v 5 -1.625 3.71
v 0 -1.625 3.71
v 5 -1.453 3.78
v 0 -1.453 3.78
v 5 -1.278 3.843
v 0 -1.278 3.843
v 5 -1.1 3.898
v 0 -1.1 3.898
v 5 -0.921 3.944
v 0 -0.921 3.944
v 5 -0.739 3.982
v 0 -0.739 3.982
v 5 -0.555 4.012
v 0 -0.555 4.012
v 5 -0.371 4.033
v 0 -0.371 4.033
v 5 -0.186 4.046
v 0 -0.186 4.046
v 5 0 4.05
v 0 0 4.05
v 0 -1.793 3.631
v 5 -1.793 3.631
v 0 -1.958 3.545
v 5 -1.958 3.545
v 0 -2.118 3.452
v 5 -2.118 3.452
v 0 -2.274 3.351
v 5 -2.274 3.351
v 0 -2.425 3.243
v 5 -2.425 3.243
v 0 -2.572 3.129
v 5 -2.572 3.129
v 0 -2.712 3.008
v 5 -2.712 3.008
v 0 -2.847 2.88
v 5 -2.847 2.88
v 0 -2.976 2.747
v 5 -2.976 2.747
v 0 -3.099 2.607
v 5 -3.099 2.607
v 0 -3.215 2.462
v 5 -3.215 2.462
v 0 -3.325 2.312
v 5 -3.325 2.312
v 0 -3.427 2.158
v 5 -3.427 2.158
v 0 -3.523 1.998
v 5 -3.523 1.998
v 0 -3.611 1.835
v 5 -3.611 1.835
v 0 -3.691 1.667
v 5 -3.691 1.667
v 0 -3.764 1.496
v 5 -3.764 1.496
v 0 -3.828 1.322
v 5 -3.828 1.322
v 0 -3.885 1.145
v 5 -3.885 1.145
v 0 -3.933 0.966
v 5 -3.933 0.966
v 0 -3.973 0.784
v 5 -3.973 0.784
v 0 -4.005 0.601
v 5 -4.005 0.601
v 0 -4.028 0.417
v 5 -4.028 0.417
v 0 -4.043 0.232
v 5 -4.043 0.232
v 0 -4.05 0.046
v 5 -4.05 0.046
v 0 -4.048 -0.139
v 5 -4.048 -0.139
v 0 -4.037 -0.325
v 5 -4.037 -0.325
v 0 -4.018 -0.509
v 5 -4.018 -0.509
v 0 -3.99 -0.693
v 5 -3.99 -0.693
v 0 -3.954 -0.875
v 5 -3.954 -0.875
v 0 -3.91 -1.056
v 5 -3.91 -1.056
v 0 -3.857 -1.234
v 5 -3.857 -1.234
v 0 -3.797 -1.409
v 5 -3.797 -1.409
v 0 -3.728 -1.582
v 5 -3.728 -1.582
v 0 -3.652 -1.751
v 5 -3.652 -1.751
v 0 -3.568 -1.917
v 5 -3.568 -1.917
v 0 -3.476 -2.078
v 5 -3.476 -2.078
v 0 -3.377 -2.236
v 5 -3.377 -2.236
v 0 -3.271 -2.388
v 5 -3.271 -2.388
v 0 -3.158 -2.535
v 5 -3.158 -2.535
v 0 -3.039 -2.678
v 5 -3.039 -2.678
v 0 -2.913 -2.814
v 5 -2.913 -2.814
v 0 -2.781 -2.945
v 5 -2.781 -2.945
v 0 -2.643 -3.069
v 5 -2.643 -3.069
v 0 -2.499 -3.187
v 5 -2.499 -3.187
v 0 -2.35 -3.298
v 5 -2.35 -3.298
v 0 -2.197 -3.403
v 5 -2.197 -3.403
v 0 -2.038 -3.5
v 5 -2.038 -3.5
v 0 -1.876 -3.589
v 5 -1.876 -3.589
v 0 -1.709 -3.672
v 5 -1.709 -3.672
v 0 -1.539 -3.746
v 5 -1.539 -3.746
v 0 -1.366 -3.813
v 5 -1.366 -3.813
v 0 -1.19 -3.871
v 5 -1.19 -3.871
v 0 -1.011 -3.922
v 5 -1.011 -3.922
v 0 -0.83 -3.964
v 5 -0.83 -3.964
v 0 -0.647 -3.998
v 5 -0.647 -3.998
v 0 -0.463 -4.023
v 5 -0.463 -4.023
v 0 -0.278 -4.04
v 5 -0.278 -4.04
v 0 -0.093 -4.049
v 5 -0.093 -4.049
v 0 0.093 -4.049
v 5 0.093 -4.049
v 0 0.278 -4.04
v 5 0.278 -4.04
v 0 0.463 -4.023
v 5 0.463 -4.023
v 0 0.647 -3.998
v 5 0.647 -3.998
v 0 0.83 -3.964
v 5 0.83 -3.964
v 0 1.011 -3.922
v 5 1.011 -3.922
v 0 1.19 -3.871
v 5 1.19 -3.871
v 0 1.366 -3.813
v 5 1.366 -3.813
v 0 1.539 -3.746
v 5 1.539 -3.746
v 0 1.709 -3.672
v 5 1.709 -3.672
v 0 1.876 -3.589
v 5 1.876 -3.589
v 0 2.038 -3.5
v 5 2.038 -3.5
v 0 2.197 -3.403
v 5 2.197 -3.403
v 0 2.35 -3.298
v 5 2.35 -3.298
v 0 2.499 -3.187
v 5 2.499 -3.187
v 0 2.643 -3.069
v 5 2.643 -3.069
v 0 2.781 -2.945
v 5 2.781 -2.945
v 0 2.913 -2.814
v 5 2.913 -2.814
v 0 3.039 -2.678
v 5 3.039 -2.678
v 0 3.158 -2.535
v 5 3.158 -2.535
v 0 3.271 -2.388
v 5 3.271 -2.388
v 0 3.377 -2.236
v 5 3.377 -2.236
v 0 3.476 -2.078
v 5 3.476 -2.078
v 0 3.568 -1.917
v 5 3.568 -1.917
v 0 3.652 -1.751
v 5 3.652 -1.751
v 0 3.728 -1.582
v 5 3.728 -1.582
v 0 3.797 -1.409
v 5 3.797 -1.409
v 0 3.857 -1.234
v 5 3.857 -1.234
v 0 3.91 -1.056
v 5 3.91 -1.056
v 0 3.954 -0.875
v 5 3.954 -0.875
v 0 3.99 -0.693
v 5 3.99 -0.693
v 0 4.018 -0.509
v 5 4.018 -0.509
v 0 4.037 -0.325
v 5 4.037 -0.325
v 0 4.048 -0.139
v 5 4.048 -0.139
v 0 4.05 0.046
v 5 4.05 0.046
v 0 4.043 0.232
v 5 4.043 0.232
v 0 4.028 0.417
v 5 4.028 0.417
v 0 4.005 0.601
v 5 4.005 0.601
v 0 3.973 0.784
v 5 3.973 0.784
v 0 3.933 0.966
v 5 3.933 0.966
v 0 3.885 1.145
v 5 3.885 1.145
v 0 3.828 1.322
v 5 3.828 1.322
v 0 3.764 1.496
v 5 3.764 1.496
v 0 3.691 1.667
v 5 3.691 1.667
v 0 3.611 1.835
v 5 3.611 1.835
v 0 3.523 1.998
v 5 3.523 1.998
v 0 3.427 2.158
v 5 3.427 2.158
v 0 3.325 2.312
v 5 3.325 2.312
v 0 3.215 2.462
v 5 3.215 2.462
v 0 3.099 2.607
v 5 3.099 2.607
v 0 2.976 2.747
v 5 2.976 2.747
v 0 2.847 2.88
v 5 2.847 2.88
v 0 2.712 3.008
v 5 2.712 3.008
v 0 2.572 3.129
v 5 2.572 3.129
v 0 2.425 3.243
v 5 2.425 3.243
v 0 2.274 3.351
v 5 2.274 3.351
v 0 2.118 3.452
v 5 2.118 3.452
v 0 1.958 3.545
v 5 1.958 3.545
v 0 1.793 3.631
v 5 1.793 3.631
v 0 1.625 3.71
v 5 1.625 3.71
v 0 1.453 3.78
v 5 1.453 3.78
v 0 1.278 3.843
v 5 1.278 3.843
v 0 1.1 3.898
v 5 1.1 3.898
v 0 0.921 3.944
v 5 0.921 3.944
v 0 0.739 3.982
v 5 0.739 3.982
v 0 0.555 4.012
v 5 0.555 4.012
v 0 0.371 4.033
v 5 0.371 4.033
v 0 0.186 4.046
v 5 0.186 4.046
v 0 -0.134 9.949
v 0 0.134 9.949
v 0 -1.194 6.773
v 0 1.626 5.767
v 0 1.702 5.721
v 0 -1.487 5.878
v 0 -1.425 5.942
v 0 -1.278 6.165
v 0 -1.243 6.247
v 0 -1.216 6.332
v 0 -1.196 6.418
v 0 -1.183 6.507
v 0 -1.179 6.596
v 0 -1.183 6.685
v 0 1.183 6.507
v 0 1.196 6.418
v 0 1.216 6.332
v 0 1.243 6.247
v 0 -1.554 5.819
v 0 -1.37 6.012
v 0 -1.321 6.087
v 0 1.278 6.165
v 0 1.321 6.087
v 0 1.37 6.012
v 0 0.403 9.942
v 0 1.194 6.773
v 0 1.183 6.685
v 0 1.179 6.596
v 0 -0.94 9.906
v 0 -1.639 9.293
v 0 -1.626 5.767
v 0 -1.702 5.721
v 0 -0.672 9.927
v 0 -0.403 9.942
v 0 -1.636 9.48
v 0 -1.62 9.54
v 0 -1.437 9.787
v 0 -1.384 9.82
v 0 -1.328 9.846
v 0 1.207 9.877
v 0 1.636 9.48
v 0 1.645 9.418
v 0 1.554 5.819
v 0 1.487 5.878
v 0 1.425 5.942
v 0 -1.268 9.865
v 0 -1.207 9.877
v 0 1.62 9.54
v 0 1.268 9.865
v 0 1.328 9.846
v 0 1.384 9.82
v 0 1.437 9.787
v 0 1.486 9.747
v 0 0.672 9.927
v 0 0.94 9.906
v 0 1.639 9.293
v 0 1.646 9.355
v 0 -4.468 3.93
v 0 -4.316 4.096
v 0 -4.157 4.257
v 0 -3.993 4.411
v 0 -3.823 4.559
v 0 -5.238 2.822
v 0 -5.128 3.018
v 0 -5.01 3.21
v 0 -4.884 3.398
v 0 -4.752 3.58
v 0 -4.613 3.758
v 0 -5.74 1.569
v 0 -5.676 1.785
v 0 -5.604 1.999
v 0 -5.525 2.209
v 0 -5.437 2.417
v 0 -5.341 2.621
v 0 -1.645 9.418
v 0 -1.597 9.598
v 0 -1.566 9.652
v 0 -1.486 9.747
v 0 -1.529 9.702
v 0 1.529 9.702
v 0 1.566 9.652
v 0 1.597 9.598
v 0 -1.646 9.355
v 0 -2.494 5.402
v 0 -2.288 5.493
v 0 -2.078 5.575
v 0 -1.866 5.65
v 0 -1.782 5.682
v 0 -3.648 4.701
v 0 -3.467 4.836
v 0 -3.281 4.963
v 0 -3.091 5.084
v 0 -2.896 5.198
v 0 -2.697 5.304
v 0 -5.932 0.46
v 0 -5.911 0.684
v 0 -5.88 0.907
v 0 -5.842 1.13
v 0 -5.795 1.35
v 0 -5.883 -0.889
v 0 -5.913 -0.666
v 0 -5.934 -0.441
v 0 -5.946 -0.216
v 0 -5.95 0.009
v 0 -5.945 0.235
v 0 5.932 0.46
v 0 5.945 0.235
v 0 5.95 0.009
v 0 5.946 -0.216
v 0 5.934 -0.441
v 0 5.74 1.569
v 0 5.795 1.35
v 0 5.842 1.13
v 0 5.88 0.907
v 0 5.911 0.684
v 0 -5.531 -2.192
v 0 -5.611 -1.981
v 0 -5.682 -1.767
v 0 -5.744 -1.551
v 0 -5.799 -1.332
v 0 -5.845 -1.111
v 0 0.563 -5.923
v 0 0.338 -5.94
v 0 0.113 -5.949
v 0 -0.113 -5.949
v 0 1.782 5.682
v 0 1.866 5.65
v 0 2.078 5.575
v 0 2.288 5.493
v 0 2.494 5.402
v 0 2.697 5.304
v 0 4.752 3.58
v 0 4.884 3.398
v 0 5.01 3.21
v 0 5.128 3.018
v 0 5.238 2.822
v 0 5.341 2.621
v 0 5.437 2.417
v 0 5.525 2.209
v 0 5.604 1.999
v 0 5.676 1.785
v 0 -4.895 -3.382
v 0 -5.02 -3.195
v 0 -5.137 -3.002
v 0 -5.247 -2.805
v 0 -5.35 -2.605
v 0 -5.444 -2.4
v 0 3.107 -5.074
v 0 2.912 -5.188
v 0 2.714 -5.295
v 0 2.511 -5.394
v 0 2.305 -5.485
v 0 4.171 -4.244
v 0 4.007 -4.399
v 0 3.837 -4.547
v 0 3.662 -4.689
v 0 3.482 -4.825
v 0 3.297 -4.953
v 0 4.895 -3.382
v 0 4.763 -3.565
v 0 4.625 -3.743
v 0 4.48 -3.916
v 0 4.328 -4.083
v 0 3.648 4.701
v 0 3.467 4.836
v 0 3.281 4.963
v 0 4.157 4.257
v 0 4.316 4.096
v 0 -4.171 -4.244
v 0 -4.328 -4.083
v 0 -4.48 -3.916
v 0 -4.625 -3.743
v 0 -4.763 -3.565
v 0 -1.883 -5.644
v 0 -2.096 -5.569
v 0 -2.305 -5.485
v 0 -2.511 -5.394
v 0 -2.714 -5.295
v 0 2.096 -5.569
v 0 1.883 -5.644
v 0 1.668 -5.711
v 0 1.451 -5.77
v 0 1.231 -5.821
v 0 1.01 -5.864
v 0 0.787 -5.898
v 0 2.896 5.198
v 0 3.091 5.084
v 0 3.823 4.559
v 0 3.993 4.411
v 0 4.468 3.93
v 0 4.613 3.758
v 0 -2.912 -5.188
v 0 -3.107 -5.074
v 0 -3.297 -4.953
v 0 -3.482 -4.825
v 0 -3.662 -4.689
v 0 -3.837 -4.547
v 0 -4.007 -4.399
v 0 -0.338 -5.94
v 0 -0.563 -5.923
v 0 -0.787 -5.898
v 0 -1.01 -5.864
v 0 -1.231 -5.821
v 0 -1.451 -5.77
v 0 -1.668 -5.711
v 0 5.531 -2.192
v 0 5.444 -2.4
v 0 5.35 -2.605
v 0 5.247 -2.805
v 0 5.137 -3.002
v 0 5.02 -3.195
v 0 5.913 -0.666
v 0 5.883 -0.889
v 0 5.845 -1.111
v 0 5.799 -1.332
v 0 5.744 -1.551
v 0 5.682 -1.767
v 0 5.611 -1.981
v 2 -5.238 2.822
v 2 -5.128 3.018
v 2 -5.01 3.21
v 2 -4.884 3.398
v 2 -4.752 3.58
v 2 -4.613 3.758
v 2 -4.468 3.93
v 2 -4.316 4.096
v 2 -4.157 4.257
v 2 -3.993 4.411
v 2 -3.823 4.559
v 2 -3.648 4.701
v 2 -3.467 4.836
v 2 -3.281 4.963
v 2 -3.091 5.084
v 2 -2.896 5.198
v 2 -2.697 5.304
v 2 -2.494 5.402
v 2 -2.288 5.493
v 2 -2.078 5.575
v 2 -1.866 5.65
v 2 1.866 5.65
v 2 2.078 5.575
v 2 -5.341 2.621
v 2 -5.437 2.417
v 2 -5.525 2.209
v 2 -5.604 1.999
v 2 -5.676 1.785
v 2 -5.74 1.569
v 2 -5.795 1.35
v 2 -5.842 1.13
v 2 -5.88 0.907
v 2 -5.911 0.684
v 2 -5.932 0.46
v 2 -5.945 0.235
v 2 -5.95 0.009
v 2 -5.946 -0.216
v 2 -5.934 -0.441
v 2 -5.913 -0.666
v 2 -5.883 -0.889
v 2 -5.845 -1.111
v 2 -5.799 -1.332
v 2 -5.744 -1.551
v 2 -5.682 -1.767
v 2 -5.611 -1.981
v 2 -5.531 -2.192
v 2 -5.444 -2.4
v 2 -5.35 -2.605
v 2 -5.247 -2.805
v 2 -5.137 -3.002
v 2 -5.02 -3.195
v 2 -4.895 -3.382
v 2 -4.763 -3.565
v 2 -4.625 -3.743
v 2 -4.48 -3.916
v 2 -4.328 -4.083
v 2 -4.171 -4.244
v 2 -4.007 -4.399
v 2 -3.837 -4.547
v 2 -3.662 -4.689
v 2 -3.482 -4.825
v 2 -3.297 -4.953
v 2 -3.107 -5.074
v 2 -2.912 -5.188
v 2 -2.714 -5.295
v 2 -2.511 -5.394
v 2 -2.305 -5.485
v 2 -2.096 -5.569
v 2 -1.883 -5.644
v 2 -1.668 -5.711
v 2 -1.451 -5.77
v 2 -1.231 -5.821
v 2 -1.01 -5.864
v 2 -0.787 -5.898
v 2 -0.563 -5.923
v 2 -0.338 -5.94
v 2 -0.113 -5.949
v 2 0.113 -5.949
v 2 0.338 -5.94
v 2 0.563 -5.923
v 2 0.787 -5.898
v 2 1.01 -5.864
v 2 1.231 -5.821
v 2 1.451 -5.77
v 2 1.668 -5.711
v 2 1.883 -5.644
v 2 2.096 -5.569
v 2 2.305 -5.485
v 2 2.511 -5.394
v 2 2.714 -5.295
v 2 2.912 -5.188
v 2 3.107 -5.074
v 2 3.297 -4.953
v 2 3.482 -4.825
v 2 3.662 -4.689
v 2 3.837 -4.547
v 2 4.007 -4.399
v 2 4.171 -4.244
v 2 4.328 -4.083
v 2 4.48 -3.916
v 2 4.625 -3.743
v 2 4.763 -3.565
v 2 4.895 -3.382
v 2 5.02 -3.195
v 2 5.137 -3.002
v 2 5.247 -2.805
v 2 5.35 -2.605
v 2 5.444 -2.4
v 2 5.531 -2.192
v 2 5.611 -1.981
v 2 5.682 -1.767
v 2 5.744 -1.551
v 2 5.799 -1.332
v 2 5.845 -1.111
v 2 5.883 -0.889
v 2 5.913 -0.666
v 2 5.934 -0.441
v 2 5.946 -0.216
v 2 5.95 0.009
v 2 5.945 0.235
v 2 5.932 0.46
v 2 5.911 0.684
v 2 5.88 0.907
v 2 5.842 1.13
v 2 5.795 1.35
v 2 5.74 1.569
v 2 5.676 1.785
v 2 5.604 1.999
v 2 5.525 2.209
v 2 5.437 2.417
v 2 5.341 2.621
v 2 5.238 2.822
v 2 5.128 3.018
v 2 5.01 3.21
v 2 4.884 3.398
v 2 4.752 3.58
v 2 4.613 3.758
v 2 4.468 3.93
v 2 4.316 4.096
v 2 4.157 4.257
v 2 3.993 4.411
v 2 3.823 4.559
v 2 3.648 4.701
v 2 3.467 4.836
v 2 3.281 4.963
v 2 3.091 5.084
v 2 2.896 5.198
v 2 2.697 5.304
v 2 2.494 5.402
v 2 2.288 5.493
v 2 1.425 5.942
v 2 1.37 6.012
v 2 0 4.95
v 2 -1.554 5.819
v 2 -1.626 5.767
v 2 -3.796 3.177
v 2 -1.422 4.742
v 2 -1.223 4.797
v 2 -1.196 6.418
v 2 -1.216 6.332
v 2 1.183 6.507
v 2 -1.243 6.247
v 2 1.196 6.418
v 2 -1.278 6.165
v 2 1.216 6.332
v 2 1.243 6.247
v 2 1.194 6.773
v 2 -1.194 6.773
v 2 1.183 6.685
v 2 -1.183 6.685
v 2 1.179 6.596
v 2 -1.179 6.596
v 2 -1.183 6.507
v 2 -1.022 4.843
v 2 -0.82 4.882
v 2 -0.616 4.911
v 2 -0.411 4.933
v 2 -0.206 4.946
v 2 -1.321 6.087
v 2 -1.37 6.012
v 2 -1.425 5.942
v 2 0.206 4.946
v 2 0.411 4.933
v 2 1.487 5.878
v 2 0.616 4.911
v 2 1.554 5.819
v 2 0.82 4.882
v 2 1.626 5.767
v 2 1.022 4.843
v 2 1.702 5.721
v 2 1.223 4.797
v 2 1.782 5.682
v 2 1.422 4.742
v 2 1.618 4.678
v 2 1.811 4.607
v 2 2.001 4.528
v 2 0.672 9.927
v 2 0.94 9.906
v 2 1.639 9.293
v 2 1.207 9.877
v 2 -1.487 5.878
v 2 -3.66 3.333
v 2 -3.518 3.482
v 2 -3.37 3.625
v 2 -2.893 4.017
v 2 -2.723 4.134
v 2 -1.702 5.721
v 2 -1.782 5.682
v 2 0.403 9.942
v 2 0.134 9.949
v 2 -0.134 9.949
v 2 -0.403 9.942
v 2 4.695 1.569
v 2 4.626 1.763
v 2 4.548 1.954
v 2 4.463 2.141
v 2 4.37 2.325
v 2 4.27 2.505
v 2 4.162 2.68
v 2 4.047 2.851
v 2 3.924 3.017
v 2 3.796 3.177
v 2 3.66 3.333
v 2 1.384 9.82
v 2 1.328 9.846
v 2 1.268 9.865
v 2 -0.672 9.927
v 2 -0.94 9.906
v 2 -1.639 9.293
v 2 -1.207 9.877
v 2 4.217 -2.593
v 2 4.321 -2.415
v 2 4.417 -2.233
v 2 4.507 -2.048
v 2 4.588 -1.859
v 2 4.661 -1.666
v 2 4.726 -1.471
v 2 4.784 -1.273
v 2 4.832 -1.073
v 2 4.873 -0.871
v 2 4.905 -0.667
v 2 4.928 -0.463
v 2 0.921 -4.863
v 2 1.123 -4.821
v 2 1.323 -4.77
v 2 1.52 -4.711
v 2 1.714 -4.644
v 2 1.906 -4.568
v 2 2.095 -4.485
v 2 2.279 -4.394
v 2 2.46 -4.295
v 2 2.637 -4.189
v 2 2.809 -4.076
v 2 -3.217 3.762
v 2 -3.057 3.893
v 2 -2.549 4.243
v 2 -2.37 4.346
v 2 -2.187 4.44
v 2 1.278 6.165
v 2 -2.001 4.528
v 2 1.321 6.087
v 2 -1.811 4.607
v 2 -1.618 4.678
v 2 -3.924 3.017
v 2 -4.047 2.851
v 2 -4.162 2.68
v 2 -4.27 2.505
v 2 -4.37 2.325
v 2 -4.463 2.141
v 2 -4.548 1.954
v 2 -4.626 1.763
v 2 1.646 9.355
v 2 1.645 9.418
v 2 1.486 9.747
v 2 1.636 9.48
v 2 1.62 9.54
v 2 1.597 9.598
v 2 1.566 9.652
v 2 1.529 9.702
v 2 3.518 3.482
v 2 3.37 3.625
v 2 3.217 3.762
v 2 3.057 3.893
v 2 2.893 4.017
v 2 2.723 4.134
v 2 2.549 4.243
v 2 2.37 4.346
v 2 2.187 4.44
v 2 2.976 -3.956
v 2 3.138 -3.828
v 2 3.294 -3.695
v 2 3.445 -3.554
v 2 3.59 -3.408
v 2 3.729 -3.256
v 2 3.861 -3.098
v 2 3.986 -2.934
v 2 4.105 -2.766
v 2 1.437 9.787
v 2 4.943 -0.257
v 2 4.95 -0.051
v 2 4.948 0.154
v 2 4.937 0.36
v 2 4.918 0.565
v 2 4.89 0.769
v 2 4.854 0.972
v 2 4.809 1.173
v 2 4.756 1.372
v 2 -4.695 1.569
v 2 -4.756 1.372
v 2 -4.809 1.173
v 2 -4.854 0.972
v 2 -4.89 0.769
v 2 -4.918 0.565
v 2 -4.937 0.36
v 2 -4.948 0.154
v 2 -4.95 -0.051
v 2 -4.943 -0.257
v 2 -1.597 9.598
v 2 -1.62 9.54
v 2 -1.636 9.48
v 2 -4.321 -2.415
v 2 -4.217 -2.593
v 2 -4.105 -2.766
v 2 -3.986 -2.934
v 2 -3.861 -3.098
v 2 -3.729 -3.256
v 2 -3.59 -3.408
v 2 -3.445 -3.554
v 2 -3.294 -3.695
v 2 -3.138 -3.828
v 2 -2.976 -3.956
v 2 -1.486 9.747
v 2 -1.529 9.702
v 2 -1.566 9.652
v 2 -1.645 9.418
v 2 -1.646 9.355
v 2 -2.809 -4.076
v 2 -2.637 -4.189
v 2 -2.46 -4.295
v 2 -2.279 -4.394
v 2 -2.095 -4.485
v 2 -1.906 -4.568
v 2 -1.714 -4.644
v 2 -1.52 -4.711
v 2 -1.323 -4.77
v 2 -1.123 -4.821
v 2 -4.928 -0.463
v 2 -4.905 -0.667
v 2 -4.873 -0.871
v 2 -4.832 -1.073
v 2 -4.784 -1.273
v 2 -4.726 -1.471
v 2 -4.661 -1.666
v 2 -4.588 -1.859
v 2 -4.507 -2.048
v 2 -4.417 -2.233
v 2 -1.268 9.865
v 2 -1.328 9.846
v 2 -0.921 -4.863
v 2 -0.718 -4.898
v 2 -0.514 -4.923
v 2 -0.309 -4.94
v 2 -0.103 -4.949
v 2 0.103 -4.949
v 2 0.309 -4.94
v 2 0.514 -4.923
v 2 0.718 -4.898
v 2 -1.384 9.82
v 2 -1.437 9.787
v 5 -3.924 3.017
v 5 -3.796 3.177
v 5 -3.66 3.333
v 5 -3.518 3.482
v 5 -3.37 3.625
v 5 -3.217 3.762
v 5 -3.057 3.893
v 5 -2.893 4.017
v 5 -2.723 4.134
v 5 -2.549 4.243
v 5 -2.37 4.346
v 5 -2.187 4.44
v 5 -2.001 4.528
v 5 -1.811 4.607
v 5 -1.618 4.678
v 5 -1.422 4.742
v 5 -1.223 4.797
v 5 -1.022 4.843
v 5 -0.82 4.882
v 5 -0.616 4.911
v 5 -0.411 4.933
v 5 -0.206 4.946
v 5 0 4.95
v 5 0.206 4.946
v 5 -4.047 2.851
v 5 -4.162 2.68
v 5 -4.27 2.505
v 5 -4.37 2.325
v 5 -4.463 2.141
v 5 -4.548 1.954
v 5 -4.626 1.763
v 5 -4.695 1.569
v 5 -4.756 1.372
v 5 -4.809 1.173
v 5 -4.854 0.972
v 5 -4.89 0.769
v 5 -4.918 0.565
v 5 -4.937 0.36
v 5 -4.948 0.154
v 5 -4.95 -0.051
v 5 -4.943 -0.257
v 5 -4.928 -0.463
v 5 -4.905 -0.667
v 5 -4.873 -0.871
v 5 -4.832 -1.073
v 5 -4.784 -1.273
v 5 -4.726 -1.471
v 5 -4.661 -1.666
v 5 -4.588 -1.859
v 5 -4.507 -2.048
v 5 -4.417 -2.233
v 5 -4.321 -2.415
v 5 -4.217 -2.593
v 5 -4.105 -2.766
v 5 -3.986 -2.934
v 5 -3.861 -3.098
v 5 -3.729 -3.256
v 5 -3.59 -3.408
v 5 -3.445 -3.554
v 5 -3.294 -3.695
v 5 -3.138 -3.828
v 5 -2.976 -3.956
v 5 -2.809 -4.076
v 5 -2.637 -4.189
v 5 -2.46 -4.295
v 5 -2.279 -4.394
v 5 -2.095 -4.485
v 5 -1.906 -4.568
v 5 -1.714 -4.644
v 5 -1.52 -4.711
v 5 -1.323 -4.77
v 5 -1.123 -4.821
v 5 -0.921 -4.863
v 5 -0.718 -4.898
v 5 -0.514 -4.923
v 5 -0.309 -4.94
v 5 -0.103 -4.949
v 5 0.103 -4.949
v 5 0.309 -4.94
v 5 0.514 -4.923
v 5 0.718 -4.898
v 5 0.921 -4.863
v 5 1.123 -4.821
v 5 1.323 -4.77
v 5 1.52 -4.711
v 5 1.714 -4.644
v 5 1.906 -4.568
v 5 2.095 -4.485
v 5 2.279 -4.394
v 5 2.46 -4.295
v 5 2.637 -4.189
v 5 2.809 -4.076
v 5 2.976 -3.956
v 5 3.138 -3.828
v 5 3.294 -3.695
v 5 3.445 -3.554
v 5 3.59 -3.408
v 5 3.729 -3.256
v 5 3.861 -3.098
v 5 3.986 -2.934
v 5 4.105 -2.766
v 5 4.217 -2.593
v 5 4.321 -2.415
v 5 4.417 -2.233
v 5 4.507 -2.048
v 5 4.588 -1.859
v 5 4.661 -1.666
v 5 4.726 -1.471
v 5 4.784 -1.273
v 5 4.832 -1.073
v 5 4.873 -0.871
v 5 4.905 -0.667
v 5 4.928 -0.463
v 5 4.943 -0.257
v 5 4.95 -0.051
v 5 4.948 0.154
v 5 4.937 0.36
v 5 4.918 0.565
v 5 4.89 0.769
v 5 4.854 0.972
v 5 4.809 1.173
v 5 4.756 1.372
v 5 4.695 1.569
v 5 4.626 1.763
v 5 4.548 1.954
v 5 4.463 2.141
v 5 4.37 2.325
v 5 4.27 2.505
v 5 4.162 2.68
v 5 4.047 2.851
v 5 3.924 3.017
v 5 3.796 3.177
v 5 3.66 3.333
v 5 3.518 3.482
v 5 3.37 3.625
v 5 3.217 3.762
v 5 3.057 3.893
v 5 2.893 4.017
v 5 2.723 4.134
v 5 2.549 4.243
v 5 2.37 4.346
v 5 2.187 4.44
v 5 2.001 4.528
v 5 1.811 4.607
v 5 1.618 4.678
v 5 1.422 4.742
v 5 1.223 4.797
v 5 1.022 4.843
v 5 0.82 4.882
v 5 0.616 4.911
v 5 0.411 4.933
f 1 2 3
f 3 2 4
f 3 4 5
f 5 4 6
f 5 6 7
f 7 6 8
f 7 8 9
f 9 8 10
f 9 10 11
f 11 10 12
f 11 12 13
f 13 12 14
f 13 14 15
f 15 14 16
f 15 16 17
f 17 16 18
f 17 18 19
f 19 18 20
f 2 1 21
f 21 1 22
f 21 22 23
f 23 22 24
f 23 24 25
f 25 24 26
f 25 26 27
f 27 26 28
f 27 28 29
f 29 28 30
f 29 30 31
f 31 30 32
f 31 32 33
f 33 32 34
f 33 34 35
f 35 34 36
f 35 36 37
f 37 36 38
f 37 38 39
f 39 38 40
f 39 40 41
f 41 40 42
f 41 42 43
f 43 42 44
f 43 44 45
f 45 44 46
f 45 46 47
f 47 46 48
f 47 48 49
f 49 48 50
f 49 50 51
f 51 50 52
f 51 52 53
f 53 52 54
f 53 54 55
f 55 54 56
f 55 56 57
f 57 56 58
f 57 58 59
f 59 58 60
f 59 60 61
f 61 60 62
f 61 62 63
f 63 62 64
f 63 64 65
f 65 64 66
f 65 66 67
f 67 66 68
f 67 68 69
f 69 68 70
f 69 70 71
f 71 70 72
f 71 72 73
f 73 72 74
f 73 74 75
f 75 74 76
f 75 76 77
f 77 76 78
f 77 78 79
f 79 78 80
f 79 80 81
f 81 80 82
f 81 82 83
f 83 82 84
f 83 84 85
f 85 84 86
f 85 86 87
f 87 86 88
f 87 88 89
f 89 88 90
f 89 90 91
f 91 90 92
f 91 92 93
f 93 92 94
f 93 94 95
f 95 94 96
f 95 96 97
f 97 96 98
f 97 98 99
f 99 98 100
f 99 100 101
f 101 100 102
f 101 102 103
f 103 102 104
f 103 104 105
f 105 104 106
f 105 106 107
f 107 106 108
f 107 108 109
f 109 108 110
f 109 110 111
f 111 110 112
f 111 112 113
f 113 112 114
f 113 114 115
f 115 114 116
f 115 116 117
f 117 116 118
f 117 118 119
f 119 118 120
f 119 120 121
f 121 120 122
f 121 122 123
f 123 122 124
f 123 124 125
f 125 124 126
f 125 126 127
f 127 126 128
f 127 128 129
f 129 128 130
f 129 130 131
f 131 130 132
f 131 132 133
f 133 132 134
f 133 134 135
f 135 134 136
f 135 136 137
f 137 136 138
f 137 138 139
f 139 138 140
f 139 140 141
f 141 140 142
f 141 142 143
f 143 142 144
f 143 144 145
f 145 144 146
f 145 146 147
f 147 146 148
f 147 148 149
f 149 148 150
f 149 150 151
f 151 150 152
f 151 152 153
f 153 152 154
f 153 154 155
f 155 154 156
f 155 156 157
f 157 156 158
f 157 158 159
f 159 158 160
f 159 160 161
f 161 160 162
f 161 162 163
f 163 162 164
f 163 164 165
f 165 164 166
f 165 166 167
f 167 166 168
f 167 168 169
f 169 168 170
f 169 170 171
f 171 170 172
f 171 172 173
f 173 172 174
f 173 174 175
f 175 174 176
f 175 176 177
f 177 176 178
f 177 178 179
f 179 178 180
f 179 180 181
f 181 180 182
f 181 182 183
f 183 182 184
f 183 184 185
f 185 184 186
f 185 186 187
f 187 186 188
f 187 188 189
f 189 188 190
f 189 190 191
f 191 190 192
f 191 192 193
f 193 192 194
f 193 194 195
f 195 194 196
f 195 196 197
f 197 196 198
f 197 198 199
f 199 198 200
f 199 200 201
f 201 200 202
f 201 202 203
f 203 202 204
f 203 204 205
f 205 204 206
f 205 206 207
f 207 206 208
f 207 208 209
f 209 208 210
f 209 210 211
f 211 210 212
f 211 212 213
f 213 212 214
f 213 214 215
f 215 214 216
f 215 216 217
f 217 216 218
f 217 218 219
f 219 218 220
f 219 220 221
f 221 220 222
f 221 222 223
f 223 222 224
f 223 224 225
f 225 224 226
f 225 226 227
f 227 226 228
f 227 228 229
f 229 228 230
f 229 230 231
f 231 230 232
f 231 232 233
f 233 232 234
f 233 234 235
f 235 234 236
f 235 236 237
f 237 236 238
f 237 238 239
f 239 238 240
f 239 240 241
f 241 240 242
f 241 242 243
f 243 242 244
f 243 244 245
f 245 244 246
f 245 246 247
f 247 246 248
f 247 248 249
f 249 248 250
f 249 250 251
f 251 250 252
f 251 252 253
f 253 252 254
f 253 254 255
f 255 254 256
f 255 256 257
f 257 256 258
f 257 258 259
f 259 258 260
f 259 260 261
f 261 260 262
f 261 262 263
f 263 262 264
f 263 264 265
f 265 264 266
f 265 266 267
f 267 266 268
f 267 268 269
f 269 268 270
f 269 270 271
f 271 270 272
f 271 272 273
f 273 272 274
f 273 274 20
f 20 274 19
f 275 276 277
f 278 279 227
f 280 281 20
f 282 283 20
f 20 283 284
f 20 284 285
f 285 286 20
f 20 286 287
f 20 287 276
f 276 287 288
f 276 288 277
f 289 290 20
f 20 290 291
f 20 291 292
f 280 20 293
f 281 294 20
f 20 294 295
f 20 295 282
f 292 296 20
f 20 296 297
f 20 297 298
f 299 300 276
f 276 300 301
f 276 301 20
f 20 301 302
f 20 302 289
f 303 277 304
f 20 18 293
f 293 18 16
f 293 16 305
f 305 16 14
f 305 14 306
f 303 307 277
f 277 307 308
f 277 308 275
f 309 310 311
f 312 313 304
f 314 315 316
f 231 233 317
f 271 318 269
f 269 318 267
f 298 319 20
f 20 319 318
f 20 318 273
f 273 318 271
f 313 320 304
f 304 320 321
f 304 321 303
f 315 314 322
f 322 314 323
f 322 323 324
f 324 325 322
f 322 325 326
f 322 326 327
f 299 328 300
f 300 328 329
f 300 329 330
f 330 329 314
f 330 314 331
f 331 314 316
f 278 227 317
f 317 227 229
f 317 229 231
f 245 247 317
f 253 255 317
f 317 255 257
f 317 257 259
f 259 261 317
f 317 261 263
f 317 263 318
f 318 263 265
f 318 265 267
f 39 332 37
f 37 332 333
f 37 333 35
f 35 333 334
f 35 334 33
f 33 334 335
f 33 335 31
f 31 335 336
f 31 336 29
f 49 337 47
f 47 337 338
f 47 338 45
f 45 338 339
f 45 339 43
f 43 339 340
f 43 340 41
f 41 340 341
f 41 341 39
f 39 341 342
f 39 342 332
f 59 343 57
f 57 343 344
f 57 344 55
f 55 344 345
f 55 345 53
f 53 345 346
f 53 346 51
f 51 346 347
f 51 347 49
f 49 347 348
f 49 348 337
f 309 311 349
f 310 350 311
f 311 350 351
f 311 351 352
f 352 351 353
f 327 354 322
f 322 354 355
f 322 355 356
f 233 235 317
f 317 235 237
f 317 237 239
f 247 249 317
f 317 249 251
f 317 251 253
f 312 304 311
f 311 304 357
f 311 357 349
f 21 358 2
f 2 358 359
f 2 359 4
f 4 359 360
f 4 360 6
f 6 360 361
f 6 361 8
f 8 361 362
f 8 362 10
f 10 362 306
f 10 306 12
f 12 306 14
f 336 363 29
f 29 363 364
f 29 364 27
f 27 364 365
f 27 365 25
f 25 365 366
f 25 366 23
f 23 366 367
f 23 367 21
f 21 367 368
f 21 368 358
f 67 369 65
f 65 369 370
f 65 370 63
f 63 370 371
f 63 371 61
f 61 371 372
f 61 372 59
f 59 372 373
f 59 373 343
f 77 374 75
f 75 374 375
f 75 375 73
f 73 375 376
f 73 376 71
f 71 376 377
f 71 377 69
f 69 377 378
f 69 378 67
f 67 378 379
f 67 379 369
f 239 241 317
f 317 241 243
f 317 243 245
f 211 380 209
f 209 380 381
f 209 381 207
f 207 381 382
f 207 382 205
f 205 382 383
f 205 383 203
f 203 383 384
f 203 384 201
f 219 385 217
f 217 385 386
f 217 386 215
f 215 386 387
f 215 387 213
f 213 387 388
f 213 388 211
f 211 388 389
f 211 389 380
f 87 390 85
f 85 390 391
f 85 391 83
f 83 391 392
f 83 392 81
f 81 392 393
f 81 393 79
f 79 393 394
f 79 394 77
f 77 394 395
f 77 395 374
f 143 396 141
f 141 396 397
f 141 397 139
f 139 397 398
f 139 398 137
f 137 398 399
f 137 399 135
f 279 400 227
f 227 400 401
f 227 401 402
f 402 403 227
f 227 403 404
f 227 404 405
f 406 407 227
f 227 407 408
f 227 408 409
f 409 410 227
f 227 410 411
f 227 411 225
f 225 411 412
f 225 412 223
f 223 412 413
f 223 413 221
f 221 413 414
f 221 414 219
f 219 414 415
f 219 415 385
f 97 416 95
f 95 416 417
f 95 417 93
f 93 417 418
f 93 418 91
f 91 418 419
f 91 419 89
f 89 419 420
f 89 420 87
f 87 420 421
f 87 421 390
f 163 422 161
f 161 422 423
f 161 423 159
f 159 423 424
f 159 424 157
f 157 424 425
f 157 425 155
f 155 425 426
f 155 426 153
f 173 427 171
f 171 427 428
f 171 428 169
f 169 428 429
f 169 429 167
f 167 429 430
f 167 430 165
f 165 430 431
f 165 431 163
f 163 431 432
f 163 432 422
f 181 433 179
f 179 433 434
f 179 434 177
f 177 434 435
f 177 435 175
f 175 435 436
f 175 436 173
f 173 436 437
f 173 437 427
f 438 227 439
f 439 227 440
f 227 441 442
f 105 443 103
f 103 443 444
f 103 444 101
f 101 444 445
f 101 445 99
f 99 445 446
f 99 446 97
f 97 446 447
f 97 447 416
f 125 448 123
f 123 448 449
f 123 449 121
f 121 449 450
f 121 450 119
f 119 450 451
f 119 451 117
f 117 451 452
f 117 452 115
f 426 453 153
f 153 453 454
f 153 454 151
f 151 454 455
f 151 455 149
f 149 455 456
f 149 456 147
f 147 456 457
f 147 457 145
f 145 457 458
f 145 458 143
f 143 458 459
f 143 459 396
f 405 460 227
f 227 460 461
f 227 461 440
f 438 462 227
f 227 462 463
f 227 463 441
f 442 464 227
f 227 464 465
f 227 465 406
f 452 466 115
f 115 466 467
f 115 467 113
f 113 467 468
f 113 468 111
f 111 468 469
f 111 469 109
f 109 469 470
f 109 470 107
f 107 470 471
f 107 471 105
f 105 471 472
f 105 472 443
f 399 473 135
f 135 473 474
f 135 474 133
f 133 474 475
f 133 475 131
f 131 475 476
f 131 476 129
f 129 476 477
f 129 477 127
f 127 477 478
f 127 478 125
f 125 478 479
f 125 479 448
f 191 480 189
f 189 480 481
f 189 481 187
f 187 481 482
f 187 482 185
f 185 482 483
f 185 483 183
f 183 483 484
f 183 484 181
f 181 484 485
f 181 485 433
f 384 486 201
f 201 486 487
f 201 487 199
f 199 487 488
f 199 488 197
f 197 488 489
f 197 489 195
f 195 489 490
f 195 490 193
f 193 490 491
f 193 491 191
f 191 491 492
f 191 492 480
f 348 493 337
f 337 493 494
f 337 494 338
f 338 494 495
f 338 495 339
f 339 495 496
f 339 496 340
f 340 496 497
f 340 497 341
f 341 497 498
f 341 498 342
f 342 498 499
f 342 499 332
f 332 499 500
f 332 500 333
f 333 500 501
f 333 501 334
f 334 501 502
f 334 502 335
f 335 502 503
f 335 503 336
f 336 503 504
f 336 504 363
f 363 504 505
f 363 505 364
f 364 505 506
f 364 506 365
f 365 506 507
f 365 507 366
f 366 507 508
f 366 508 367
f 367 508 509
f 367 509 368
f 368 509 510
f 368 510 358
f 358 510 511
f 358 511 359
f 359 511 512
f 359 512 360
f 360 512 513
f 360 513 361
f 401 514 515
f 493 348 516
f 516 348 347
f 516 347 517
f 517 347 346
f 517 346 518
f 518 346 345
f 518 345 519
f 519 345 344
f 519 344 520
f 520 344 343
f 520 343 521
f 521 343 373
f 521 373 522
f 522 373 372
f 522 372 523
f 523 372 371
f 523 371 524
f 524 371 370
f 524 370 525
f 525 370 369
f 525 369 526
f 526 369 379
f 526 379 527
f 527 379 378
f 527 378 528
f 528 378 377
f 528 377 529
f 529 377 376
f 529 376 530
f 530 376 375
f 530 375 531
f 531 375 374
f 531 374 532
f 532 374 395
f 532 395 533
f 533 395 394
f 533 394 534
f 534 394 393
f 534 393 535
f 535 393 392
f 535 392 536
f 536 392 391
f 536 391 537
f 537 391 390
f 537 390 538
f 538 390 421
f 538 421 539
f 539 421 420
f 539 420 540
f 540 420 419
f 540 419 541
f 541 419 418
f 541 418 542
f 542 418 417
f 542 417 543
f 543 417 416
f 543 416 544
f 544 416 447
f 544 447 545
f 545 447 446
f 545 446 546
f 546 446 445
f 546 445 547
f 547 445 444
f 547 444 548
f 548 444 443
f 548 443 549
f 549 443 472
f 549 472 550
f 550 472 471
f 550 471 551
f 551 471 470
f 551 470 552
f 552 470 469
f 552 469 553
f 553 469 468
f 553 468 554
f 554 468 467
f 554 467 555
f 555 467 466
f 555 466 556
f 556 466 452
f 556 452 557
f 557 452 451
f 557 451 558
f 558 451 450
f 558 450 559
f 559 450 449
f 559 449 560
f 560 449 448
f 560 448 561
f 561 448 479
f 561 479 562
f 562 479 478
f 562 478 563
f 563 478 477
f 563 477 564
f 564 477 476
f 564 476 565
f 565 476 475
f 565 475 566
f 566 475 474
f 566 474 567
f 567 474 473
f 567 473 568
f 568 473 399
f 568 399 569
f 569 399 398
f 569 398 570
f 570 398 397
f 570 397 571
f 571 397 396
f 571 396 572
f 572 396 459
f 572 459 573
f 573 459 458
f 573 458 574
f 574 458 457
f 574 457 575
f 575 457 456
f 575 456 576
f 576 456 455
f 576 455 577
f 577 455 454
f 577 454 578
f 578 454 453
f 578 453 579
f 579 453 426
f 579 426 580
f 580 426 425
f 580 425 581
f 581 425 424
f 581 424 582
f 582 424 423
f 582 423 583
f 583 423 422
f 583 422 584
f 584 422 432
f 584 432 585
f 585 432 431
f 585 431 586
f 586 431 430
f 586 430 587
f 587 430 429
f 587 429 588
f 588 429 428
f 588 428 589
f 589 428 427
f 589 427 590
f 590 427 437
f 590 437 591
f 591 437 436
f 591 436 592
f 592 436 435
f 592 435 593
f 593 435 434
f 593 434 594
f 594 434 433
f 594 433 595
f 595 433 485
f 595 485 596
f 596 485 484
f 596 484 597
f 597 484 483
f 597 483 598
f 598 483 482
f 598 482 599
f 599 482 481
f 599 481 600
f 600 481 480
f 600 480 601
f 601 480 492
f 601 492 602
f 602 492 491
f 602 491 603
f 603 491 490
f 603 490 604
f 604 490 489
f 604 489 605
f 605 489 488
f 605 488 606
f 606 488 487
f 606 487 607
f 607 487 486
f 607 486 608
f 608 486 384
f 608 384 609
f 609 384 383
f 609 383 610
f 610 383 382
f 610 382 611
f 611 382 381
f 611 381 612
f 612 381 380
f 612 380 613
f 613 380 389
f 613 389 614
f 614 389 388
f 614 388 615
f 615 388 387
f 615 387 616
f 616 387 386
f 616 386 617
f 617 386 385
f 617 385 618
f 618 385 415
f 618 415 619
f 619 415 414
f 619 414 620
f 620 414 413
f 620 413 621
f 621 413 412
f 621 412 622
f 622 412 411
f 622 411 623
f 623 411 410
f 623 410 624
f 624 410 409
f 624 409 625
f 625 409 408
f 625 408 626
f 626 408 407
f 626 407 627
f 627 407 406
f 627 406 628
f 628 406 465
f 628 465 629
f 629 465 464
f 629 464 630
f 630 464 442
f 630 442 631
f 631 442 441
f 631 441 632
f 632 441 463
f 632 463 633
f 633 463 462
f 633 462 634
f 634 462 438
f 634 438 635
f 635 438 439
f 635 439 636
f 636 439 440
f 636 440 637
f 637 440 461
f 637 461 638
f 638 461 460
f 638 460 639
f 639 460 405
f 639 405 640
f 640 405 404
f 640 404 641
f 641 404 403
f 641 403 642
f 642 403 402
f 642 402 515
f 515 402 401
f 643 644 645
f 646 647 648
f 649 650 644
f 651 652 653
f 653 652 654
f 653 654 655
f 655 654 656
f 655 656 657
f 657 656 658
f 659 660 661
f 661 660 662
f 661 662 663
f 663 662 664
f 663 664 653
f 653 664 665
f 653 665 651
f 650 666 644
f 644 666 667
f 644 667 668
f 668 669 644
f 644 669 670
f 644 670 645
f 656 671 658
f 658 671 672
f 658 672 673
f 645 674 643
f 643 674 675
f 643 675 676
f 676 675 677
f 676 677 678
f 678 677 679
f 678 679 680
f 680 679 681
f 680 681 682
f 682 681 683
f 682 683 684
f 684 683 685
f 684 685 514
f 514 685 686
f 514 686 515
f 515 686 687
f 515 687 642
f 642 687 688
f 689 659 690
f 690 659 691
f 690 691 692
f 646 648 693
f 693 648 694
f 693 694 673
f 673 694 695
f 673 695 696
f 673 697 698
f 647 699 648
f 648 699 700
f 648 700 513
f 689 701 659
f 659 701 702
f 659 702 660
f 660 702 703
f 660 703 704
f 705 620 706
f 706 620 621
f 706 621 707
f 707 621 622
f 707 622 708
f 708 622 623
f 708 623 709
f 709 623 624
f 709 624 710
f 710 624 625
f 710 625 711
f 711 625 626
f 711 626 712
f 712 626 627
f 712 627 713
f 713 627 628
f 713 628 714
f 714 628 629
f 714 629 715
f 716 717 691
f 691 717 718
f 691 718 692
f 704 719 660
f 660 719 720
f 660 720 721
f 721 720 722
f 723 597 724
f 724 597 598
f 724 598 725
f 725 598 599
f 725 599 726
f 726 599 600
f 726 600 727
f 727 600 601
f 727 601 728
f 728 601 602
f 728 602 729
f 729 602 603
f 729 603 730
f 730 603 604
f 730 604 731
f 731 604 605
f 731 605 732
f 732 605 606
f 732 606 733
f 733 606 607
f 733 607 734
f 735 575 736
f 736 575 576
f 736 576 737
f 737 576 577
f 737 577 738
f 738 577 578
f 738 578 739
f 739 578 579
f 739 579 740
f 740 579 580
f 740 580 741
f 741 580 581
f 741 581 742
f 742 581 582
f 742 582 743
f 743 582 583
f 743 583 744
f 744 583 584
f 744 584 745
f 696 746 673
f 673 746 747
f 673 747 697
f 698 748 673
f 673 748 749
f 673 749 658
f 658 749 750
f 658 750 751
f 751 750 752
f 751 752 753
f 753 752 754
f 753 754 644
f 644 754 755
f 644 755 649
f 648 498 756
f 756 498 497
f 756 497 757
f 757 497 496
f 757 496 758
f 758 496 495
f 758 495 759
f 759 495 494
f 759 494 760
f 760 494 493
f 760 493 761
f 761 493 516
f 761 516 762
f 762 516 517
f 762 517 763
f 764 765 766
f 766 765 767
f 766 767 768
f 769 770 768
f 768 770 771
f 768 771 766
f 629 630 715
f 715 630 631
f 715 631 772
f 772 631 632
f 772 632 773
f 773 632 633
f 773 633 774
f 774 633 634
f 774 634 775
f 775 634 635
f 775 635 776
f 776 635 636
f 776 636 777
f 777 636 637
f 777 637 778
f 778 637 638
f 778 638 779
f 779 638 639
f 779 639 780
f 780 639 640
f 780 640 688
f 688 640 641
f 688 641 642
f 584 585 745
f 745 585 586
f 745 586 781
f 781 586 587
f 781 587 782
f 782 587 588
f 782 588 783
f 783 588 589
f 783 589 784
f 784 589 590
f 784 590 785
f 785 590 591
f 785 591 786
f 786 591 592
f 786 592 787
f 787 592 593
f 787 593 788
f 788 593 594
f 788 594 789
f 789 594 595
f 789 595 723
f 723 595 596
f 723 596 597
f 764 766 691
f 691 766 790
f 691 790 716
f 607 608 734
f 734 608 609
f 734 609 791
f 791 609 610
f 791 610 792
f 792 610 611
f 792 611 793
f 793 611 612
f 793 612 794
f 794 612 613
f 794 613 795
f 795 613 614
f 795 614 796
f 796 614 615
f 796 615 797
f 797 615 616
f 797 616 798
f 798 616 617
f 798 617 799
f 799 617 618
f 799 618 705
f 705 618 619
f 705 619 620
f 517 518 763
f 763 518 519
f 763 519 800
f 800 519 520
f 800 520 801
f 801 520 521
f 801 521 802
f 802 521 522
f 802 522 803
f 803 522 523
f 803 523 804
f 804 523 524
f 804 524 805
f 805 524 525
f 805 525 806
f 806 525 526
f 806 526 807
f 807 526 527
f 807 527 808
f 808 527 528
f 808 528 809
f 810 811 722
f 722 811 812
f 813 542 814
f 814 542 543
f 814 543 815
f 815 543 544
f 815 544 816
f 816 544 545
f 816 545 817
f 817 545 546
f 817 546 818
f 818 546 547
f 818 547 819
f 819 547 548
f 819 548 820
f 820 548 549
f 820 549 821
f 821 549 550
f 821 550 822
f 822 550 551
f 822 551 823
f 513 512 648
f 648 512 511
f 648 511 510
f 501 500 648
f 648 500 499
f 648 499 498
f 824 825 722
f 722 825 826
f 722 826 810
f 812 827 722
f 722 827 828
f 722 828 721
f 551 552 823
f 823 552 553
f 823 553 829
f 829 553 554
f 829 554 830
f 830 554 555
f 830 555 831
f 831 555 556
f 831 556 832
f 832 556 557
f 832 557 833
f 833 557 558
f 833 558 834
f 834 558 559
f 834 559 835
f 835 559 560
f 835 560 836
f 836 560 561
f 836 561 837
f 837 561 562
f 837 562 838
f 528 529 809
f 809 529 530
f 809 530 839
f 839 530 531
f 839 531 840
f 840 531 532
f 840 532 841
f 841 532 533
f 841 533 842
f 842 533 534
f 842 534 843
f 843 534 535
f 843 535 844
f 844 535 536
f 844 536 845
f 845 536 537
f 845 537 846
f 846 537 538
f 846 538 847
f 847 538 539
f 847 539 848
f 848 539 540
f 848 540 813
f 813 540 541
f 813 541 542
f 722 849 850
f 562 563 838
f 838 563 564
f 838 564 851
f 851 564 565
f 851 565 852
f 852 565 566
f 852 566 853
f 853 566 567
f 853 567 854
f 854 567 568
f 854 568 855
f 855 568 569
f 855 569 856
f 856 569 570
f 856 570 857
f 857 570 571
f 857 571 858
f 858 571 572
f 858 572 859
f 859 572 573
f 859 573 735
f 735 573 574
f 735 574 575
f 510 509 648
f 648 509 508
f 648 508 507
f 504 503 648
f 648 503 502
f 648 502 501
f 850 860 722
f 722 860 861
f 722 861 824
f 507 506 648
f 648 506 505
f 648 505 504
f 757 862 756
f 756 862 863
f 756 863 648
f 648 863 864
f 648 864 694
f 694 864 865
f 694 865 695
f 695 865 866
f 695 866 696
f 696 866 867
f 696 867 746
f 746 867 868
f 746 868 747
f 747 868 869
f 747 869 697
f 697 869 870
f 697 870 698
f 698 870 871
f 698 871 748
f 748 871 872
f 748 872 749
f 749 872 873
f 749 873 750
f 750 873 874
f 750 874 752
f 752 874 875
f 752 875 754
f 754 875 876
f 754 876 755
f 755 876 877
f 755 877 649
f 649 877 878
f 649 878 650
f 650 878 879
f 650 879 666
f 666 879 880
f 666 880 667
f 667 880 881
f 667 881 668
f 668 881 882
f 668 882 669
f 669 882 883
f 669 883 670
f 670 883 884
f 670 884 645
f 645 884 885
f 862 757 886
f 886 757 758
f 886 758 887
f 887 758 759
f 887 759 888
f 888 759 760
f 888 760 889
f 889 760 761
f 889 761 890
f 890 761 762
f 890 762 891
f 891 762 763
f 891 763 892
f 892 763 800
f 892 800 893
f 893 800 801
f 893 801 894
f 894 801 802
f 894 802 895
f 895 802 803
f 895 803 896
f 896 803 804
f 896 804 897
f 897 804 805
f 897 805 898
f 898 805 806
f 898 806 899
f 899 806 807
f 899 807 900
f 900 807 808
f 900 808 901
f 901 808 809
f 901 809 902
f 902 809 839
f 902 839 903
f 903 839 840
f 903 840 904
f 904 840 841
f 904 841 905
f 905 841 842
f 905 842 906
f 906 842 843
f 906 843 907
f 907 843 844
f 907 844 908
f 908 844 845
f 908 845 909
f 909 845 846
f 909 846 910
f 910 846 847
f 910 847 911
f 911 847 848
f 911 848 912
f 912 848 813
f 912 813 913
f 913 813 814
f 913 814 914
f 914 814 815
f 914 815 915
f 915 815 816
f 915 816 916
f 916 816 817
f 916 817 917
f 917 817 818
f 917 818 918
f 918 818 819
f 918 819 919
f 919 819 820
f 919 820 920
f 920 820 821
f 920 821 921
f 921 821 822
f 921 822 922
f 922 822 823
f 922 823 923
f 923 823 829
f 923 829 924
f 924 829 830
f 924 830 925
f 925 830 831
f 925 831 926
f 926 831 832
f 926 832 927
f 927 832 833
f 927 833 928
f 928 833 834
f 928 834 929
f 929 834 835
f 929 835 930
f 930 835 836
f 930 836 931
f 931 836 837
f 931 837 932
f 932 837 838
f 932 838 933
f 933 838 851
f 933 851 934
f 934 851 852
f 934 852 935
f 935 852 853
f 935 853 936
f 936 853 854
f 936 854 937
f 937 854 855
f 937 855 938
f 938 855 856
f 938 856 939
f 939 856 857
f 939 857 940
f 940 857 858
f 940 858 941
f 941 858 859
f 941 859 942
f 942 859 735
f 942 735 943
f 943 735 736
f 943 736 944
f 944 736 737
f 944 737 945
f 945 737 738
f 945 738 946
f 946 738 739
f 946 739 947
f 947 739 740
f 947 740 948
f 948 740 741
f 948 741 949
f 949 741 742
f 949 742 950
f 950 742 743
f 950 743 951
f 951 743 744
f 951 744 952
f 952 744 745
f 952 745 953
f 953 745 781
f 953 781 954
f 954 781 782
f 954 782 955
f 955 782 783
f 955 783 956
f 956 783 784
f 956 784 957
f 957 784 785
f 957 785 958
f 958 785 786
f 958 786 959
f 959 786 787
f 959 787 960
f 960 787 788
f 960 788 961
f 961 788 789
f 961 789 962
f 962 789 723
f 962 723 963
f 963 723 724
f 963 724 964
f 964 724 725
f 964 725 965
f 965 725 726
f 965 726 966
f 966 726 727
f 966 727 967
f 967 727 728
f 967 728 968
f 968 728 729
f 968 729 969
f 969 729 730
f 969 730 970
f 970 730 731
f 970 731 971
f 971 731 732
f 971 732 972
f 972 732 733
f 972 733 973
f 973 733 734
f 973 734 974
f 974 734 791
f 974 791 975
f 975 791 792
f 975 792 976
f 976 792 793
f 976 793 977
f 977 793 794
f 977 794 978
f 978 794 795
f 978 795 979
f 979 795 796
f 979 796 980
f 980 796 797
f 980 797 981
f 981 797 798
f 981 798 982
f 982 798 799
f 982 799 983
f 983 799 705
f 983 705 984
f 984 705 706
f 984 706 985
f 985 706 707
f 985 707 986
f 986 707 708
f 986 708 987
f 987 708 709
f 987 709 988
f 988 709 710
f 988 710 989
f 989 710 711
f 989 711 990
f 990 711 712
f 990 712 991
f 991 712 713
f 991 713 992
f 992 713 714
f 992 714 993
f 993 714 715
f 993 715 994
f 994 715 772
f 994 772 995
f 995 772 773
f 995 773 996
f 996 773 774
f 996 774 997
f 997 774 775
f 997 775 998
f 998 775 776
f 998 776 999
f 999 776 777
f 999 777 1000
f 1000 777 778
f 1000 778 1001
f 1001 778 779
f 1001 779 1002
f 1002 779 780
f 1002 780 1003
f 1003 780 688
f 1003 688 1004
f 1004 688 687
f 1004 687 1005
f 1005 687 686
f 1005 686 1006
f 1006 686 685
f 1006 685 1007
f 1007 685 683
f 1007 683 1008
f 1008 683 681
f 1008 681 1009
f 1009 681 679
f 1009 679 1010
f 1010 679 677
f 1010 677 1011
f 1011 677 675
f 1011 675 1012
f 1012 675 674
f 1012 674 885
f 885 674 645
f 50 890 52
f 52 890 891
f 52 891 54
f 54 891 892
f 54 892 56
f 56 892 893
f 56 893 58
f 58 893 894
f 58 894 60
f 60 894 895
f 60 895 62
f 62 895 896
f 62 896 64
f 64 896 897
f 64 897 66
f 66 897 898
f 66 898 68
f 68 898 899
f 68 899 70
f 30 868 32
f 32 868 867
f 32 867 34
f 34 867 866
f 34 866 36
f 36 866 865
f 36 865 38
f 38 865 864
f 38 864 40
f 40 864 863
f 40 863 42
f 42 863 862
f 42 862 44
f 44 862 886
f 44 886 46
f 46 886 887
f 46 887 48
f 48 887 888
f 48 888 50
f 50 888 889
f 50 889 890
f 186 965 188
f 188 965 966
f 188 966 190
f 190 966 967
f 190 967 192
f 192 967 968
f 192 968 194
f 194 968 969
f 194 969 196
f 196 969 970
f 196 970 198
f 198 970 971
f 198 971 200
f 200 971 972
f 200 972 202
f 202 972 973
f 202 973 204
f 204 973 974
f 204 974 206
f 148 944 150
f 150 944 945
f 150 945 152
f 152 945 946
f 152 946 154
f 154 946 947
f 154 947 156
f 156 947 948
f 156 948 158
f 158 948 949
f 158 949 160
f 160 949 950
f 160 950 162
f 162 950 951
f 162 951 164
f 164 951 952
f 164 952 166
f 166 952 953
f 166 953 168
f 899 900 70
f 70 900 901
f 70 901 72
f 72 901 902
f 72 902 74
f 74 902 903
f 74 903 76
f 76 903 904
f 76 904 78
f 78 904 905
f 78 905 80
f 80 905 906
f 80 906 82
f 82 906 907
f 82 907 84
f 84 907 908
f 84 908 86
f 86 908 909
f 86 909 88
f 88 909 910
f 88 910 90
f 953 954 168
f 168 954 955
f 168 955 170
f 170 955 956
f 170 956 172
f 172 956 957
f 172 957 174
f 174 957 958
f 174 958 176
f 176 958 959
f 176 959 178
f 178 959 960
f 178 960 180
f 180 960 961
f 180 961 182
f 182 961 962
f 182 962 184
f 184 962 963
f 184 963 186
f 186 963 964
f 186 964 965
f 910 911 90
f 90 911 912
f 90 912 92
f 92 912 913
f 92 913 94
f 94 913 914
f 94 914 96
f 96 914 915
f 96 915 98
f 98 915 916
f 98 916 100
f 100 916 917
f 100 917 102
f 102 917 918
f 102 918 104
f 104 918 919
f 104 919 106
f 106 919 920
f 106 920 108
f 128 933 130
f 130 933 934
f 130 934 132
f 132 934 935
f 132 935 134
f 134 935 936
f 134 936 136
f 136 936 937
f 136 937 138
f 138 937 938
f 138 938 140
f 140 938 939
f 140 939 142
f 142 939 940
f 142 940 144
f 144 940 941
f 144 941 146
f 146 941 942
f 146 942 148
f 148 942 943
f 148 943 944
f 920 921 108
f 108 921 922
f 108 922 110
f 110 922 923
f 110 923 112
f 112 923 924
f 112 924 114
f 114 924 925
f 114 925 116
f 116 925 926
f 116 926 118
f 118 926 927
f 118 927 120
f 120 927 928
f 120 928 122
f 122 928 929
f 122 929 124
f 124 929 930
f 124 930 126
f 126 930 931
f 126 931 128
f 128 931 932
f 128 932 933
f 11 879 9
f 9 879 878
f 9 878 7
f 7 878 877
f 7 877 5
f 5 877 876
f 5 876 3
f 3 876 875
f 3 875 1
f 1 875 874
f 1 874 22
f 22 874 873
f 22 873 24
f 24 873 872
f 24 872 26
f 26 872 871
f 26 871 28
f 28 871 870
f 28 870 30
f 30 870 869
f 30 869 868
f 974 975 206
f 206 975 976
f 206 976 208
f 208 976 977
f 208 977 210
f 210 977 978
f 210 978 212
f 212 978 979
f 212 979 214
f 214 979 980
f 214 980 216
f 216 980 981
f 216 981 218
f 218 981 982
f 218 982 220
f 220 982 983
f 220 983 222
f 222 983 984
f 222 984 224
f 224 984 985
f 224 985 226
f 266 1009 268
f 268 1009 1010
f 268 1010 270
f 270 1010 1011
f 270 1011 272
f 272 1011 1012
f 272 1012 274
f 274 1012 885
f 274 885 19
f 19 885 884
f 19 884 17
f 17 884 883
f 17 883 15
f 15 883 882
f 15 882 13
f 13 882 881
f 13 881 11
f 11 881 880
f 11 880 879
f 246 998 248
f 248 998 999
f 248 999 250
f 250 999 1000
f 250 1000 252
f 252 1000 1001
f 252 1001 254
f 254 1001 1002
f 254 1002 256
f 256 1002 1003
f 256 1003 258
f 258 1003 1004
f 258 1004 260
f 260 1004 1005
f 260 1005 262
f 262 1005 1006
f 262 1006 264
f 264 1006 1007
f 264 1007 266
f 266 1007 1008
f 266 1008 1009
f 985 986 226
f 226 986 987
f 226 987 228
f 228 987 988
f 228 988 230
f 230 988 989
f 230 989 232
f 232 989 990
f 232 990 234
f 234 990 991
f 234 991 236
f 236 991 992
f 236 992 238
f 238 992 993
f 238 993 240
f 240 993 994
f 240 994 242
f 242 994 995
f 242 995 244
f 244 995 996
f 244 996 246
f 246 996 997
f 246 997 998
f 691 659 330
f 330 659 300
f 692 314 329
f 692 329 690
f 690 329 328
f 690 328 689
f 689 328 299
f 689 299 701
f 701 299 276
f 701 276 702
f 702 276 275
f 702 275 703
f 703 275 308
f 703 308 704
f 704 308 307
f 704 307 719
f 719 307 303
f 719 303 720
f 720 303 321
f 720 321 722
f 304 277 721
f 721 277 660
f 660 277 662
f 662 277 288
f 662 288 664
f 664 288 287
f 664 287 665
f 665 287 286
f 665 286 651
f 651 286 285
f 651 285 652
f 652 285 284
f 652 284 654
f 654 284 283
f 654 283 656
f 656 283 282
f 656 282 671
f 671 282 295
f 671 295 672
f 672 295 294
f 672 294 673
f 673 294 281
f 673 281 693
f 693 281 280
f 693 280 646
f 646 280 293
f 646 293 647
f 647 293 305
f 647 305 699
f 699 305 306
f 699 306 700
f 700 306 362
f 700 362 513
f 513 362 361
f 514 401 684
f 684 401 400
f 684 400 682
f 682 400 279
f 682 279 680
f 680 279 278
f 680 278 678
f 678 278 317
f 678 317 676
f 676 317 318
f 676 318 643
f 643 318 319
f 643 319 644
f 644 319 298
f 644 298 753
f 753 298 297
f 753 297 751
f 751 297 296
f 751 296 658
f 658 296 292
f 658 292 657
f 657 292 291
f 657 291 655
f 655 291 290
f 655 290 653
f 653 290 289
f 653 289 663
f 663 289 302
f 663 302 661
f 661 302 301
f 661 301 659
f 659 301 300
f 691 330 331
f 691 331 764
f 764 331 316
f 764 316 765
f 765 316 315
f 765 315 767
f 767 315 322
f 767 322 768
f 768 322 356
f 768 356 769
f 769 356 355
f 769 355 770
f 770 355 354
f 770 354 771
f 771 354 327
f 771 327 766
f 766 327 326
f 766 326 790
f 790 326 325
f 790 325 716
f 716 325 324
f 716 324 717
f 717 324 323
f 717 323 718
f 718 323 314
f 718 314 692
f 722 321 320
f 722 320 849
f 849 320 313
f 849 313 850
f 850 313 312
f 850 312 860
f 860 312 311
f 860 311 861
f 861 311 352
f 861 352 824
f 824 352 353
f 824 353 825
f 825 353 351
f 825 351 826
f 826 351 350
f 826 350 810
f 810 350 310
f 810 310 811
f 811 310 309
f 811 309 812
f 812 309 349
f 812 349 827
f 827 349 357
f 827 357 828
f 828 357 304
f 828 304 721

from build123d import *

# Parameters (mm, degrees)
BOSS_EXTRU_1_START = -2
BOSS_EXTRU_1_DEPTH = 2
CONG_1_R           = 1
CONG_3_R           = 0.5


with BuildPart() as part:
    # Esquisse1 → Révolution1 (revolve)
    with BuildSketch(Plane.XY, mode=Mode.PRIVATE) as r_volution1_sk:
        Polygon((0, 4.05), (0, 5.95), (2, 5.95), (2, 4.95), (5, 4.95), (5, 4.05), align=None)
    revolve(r_volution1_sk.sketch.rotate(Axis((-3.996004355, 0, 0), (1, 0, 0)), 90), axis=Axis((-3.996004355, 0, 0), (1, 0, 0)))

    # Esquisse2 → Boss.-Extru.1 (add)
    with BuildSketch(Plane.ZY.offset(BOSS_EXTRU_1_START)):
        with BuildLine():
            Line((5.85960613, -1.033206657), (9.798837142, -1.727799368))
            ThreePointArc((9.798837142, -1.727799368), (9.95, 0), (9.798837142, 1.727799368))
            Line((9.798837142, 1.727799368), (5.85960613, 1.033206657))
            ThreePointArc((5.85960613, 1.033206657), (5.95, 0), (5.85960613, -1.033206657))
        make_face()
    extrude(amount=BOSS_EXTRU_1_DEPTH)

    # Congé1
    cong_1_edges = [part.edges().sort_by_distance(p)[0] for p in [
        (1, -1.033206657, 5.85960613),
        (1, 1.033206657, 5.85960613),
    ]]
    fillet(cong_1_edges, radius=CONG_1_R)

    # Congé3
    cong_3_edges = [part.edges().sort_by_distance(p)[0] for p in [
        (1, 1.727799368, 9.798837142),
        (1, -1.727799368, 9.798837142),
    ]]
    fillet(cong_3_edges, radius=CONG_3_R)


solid = part.part
